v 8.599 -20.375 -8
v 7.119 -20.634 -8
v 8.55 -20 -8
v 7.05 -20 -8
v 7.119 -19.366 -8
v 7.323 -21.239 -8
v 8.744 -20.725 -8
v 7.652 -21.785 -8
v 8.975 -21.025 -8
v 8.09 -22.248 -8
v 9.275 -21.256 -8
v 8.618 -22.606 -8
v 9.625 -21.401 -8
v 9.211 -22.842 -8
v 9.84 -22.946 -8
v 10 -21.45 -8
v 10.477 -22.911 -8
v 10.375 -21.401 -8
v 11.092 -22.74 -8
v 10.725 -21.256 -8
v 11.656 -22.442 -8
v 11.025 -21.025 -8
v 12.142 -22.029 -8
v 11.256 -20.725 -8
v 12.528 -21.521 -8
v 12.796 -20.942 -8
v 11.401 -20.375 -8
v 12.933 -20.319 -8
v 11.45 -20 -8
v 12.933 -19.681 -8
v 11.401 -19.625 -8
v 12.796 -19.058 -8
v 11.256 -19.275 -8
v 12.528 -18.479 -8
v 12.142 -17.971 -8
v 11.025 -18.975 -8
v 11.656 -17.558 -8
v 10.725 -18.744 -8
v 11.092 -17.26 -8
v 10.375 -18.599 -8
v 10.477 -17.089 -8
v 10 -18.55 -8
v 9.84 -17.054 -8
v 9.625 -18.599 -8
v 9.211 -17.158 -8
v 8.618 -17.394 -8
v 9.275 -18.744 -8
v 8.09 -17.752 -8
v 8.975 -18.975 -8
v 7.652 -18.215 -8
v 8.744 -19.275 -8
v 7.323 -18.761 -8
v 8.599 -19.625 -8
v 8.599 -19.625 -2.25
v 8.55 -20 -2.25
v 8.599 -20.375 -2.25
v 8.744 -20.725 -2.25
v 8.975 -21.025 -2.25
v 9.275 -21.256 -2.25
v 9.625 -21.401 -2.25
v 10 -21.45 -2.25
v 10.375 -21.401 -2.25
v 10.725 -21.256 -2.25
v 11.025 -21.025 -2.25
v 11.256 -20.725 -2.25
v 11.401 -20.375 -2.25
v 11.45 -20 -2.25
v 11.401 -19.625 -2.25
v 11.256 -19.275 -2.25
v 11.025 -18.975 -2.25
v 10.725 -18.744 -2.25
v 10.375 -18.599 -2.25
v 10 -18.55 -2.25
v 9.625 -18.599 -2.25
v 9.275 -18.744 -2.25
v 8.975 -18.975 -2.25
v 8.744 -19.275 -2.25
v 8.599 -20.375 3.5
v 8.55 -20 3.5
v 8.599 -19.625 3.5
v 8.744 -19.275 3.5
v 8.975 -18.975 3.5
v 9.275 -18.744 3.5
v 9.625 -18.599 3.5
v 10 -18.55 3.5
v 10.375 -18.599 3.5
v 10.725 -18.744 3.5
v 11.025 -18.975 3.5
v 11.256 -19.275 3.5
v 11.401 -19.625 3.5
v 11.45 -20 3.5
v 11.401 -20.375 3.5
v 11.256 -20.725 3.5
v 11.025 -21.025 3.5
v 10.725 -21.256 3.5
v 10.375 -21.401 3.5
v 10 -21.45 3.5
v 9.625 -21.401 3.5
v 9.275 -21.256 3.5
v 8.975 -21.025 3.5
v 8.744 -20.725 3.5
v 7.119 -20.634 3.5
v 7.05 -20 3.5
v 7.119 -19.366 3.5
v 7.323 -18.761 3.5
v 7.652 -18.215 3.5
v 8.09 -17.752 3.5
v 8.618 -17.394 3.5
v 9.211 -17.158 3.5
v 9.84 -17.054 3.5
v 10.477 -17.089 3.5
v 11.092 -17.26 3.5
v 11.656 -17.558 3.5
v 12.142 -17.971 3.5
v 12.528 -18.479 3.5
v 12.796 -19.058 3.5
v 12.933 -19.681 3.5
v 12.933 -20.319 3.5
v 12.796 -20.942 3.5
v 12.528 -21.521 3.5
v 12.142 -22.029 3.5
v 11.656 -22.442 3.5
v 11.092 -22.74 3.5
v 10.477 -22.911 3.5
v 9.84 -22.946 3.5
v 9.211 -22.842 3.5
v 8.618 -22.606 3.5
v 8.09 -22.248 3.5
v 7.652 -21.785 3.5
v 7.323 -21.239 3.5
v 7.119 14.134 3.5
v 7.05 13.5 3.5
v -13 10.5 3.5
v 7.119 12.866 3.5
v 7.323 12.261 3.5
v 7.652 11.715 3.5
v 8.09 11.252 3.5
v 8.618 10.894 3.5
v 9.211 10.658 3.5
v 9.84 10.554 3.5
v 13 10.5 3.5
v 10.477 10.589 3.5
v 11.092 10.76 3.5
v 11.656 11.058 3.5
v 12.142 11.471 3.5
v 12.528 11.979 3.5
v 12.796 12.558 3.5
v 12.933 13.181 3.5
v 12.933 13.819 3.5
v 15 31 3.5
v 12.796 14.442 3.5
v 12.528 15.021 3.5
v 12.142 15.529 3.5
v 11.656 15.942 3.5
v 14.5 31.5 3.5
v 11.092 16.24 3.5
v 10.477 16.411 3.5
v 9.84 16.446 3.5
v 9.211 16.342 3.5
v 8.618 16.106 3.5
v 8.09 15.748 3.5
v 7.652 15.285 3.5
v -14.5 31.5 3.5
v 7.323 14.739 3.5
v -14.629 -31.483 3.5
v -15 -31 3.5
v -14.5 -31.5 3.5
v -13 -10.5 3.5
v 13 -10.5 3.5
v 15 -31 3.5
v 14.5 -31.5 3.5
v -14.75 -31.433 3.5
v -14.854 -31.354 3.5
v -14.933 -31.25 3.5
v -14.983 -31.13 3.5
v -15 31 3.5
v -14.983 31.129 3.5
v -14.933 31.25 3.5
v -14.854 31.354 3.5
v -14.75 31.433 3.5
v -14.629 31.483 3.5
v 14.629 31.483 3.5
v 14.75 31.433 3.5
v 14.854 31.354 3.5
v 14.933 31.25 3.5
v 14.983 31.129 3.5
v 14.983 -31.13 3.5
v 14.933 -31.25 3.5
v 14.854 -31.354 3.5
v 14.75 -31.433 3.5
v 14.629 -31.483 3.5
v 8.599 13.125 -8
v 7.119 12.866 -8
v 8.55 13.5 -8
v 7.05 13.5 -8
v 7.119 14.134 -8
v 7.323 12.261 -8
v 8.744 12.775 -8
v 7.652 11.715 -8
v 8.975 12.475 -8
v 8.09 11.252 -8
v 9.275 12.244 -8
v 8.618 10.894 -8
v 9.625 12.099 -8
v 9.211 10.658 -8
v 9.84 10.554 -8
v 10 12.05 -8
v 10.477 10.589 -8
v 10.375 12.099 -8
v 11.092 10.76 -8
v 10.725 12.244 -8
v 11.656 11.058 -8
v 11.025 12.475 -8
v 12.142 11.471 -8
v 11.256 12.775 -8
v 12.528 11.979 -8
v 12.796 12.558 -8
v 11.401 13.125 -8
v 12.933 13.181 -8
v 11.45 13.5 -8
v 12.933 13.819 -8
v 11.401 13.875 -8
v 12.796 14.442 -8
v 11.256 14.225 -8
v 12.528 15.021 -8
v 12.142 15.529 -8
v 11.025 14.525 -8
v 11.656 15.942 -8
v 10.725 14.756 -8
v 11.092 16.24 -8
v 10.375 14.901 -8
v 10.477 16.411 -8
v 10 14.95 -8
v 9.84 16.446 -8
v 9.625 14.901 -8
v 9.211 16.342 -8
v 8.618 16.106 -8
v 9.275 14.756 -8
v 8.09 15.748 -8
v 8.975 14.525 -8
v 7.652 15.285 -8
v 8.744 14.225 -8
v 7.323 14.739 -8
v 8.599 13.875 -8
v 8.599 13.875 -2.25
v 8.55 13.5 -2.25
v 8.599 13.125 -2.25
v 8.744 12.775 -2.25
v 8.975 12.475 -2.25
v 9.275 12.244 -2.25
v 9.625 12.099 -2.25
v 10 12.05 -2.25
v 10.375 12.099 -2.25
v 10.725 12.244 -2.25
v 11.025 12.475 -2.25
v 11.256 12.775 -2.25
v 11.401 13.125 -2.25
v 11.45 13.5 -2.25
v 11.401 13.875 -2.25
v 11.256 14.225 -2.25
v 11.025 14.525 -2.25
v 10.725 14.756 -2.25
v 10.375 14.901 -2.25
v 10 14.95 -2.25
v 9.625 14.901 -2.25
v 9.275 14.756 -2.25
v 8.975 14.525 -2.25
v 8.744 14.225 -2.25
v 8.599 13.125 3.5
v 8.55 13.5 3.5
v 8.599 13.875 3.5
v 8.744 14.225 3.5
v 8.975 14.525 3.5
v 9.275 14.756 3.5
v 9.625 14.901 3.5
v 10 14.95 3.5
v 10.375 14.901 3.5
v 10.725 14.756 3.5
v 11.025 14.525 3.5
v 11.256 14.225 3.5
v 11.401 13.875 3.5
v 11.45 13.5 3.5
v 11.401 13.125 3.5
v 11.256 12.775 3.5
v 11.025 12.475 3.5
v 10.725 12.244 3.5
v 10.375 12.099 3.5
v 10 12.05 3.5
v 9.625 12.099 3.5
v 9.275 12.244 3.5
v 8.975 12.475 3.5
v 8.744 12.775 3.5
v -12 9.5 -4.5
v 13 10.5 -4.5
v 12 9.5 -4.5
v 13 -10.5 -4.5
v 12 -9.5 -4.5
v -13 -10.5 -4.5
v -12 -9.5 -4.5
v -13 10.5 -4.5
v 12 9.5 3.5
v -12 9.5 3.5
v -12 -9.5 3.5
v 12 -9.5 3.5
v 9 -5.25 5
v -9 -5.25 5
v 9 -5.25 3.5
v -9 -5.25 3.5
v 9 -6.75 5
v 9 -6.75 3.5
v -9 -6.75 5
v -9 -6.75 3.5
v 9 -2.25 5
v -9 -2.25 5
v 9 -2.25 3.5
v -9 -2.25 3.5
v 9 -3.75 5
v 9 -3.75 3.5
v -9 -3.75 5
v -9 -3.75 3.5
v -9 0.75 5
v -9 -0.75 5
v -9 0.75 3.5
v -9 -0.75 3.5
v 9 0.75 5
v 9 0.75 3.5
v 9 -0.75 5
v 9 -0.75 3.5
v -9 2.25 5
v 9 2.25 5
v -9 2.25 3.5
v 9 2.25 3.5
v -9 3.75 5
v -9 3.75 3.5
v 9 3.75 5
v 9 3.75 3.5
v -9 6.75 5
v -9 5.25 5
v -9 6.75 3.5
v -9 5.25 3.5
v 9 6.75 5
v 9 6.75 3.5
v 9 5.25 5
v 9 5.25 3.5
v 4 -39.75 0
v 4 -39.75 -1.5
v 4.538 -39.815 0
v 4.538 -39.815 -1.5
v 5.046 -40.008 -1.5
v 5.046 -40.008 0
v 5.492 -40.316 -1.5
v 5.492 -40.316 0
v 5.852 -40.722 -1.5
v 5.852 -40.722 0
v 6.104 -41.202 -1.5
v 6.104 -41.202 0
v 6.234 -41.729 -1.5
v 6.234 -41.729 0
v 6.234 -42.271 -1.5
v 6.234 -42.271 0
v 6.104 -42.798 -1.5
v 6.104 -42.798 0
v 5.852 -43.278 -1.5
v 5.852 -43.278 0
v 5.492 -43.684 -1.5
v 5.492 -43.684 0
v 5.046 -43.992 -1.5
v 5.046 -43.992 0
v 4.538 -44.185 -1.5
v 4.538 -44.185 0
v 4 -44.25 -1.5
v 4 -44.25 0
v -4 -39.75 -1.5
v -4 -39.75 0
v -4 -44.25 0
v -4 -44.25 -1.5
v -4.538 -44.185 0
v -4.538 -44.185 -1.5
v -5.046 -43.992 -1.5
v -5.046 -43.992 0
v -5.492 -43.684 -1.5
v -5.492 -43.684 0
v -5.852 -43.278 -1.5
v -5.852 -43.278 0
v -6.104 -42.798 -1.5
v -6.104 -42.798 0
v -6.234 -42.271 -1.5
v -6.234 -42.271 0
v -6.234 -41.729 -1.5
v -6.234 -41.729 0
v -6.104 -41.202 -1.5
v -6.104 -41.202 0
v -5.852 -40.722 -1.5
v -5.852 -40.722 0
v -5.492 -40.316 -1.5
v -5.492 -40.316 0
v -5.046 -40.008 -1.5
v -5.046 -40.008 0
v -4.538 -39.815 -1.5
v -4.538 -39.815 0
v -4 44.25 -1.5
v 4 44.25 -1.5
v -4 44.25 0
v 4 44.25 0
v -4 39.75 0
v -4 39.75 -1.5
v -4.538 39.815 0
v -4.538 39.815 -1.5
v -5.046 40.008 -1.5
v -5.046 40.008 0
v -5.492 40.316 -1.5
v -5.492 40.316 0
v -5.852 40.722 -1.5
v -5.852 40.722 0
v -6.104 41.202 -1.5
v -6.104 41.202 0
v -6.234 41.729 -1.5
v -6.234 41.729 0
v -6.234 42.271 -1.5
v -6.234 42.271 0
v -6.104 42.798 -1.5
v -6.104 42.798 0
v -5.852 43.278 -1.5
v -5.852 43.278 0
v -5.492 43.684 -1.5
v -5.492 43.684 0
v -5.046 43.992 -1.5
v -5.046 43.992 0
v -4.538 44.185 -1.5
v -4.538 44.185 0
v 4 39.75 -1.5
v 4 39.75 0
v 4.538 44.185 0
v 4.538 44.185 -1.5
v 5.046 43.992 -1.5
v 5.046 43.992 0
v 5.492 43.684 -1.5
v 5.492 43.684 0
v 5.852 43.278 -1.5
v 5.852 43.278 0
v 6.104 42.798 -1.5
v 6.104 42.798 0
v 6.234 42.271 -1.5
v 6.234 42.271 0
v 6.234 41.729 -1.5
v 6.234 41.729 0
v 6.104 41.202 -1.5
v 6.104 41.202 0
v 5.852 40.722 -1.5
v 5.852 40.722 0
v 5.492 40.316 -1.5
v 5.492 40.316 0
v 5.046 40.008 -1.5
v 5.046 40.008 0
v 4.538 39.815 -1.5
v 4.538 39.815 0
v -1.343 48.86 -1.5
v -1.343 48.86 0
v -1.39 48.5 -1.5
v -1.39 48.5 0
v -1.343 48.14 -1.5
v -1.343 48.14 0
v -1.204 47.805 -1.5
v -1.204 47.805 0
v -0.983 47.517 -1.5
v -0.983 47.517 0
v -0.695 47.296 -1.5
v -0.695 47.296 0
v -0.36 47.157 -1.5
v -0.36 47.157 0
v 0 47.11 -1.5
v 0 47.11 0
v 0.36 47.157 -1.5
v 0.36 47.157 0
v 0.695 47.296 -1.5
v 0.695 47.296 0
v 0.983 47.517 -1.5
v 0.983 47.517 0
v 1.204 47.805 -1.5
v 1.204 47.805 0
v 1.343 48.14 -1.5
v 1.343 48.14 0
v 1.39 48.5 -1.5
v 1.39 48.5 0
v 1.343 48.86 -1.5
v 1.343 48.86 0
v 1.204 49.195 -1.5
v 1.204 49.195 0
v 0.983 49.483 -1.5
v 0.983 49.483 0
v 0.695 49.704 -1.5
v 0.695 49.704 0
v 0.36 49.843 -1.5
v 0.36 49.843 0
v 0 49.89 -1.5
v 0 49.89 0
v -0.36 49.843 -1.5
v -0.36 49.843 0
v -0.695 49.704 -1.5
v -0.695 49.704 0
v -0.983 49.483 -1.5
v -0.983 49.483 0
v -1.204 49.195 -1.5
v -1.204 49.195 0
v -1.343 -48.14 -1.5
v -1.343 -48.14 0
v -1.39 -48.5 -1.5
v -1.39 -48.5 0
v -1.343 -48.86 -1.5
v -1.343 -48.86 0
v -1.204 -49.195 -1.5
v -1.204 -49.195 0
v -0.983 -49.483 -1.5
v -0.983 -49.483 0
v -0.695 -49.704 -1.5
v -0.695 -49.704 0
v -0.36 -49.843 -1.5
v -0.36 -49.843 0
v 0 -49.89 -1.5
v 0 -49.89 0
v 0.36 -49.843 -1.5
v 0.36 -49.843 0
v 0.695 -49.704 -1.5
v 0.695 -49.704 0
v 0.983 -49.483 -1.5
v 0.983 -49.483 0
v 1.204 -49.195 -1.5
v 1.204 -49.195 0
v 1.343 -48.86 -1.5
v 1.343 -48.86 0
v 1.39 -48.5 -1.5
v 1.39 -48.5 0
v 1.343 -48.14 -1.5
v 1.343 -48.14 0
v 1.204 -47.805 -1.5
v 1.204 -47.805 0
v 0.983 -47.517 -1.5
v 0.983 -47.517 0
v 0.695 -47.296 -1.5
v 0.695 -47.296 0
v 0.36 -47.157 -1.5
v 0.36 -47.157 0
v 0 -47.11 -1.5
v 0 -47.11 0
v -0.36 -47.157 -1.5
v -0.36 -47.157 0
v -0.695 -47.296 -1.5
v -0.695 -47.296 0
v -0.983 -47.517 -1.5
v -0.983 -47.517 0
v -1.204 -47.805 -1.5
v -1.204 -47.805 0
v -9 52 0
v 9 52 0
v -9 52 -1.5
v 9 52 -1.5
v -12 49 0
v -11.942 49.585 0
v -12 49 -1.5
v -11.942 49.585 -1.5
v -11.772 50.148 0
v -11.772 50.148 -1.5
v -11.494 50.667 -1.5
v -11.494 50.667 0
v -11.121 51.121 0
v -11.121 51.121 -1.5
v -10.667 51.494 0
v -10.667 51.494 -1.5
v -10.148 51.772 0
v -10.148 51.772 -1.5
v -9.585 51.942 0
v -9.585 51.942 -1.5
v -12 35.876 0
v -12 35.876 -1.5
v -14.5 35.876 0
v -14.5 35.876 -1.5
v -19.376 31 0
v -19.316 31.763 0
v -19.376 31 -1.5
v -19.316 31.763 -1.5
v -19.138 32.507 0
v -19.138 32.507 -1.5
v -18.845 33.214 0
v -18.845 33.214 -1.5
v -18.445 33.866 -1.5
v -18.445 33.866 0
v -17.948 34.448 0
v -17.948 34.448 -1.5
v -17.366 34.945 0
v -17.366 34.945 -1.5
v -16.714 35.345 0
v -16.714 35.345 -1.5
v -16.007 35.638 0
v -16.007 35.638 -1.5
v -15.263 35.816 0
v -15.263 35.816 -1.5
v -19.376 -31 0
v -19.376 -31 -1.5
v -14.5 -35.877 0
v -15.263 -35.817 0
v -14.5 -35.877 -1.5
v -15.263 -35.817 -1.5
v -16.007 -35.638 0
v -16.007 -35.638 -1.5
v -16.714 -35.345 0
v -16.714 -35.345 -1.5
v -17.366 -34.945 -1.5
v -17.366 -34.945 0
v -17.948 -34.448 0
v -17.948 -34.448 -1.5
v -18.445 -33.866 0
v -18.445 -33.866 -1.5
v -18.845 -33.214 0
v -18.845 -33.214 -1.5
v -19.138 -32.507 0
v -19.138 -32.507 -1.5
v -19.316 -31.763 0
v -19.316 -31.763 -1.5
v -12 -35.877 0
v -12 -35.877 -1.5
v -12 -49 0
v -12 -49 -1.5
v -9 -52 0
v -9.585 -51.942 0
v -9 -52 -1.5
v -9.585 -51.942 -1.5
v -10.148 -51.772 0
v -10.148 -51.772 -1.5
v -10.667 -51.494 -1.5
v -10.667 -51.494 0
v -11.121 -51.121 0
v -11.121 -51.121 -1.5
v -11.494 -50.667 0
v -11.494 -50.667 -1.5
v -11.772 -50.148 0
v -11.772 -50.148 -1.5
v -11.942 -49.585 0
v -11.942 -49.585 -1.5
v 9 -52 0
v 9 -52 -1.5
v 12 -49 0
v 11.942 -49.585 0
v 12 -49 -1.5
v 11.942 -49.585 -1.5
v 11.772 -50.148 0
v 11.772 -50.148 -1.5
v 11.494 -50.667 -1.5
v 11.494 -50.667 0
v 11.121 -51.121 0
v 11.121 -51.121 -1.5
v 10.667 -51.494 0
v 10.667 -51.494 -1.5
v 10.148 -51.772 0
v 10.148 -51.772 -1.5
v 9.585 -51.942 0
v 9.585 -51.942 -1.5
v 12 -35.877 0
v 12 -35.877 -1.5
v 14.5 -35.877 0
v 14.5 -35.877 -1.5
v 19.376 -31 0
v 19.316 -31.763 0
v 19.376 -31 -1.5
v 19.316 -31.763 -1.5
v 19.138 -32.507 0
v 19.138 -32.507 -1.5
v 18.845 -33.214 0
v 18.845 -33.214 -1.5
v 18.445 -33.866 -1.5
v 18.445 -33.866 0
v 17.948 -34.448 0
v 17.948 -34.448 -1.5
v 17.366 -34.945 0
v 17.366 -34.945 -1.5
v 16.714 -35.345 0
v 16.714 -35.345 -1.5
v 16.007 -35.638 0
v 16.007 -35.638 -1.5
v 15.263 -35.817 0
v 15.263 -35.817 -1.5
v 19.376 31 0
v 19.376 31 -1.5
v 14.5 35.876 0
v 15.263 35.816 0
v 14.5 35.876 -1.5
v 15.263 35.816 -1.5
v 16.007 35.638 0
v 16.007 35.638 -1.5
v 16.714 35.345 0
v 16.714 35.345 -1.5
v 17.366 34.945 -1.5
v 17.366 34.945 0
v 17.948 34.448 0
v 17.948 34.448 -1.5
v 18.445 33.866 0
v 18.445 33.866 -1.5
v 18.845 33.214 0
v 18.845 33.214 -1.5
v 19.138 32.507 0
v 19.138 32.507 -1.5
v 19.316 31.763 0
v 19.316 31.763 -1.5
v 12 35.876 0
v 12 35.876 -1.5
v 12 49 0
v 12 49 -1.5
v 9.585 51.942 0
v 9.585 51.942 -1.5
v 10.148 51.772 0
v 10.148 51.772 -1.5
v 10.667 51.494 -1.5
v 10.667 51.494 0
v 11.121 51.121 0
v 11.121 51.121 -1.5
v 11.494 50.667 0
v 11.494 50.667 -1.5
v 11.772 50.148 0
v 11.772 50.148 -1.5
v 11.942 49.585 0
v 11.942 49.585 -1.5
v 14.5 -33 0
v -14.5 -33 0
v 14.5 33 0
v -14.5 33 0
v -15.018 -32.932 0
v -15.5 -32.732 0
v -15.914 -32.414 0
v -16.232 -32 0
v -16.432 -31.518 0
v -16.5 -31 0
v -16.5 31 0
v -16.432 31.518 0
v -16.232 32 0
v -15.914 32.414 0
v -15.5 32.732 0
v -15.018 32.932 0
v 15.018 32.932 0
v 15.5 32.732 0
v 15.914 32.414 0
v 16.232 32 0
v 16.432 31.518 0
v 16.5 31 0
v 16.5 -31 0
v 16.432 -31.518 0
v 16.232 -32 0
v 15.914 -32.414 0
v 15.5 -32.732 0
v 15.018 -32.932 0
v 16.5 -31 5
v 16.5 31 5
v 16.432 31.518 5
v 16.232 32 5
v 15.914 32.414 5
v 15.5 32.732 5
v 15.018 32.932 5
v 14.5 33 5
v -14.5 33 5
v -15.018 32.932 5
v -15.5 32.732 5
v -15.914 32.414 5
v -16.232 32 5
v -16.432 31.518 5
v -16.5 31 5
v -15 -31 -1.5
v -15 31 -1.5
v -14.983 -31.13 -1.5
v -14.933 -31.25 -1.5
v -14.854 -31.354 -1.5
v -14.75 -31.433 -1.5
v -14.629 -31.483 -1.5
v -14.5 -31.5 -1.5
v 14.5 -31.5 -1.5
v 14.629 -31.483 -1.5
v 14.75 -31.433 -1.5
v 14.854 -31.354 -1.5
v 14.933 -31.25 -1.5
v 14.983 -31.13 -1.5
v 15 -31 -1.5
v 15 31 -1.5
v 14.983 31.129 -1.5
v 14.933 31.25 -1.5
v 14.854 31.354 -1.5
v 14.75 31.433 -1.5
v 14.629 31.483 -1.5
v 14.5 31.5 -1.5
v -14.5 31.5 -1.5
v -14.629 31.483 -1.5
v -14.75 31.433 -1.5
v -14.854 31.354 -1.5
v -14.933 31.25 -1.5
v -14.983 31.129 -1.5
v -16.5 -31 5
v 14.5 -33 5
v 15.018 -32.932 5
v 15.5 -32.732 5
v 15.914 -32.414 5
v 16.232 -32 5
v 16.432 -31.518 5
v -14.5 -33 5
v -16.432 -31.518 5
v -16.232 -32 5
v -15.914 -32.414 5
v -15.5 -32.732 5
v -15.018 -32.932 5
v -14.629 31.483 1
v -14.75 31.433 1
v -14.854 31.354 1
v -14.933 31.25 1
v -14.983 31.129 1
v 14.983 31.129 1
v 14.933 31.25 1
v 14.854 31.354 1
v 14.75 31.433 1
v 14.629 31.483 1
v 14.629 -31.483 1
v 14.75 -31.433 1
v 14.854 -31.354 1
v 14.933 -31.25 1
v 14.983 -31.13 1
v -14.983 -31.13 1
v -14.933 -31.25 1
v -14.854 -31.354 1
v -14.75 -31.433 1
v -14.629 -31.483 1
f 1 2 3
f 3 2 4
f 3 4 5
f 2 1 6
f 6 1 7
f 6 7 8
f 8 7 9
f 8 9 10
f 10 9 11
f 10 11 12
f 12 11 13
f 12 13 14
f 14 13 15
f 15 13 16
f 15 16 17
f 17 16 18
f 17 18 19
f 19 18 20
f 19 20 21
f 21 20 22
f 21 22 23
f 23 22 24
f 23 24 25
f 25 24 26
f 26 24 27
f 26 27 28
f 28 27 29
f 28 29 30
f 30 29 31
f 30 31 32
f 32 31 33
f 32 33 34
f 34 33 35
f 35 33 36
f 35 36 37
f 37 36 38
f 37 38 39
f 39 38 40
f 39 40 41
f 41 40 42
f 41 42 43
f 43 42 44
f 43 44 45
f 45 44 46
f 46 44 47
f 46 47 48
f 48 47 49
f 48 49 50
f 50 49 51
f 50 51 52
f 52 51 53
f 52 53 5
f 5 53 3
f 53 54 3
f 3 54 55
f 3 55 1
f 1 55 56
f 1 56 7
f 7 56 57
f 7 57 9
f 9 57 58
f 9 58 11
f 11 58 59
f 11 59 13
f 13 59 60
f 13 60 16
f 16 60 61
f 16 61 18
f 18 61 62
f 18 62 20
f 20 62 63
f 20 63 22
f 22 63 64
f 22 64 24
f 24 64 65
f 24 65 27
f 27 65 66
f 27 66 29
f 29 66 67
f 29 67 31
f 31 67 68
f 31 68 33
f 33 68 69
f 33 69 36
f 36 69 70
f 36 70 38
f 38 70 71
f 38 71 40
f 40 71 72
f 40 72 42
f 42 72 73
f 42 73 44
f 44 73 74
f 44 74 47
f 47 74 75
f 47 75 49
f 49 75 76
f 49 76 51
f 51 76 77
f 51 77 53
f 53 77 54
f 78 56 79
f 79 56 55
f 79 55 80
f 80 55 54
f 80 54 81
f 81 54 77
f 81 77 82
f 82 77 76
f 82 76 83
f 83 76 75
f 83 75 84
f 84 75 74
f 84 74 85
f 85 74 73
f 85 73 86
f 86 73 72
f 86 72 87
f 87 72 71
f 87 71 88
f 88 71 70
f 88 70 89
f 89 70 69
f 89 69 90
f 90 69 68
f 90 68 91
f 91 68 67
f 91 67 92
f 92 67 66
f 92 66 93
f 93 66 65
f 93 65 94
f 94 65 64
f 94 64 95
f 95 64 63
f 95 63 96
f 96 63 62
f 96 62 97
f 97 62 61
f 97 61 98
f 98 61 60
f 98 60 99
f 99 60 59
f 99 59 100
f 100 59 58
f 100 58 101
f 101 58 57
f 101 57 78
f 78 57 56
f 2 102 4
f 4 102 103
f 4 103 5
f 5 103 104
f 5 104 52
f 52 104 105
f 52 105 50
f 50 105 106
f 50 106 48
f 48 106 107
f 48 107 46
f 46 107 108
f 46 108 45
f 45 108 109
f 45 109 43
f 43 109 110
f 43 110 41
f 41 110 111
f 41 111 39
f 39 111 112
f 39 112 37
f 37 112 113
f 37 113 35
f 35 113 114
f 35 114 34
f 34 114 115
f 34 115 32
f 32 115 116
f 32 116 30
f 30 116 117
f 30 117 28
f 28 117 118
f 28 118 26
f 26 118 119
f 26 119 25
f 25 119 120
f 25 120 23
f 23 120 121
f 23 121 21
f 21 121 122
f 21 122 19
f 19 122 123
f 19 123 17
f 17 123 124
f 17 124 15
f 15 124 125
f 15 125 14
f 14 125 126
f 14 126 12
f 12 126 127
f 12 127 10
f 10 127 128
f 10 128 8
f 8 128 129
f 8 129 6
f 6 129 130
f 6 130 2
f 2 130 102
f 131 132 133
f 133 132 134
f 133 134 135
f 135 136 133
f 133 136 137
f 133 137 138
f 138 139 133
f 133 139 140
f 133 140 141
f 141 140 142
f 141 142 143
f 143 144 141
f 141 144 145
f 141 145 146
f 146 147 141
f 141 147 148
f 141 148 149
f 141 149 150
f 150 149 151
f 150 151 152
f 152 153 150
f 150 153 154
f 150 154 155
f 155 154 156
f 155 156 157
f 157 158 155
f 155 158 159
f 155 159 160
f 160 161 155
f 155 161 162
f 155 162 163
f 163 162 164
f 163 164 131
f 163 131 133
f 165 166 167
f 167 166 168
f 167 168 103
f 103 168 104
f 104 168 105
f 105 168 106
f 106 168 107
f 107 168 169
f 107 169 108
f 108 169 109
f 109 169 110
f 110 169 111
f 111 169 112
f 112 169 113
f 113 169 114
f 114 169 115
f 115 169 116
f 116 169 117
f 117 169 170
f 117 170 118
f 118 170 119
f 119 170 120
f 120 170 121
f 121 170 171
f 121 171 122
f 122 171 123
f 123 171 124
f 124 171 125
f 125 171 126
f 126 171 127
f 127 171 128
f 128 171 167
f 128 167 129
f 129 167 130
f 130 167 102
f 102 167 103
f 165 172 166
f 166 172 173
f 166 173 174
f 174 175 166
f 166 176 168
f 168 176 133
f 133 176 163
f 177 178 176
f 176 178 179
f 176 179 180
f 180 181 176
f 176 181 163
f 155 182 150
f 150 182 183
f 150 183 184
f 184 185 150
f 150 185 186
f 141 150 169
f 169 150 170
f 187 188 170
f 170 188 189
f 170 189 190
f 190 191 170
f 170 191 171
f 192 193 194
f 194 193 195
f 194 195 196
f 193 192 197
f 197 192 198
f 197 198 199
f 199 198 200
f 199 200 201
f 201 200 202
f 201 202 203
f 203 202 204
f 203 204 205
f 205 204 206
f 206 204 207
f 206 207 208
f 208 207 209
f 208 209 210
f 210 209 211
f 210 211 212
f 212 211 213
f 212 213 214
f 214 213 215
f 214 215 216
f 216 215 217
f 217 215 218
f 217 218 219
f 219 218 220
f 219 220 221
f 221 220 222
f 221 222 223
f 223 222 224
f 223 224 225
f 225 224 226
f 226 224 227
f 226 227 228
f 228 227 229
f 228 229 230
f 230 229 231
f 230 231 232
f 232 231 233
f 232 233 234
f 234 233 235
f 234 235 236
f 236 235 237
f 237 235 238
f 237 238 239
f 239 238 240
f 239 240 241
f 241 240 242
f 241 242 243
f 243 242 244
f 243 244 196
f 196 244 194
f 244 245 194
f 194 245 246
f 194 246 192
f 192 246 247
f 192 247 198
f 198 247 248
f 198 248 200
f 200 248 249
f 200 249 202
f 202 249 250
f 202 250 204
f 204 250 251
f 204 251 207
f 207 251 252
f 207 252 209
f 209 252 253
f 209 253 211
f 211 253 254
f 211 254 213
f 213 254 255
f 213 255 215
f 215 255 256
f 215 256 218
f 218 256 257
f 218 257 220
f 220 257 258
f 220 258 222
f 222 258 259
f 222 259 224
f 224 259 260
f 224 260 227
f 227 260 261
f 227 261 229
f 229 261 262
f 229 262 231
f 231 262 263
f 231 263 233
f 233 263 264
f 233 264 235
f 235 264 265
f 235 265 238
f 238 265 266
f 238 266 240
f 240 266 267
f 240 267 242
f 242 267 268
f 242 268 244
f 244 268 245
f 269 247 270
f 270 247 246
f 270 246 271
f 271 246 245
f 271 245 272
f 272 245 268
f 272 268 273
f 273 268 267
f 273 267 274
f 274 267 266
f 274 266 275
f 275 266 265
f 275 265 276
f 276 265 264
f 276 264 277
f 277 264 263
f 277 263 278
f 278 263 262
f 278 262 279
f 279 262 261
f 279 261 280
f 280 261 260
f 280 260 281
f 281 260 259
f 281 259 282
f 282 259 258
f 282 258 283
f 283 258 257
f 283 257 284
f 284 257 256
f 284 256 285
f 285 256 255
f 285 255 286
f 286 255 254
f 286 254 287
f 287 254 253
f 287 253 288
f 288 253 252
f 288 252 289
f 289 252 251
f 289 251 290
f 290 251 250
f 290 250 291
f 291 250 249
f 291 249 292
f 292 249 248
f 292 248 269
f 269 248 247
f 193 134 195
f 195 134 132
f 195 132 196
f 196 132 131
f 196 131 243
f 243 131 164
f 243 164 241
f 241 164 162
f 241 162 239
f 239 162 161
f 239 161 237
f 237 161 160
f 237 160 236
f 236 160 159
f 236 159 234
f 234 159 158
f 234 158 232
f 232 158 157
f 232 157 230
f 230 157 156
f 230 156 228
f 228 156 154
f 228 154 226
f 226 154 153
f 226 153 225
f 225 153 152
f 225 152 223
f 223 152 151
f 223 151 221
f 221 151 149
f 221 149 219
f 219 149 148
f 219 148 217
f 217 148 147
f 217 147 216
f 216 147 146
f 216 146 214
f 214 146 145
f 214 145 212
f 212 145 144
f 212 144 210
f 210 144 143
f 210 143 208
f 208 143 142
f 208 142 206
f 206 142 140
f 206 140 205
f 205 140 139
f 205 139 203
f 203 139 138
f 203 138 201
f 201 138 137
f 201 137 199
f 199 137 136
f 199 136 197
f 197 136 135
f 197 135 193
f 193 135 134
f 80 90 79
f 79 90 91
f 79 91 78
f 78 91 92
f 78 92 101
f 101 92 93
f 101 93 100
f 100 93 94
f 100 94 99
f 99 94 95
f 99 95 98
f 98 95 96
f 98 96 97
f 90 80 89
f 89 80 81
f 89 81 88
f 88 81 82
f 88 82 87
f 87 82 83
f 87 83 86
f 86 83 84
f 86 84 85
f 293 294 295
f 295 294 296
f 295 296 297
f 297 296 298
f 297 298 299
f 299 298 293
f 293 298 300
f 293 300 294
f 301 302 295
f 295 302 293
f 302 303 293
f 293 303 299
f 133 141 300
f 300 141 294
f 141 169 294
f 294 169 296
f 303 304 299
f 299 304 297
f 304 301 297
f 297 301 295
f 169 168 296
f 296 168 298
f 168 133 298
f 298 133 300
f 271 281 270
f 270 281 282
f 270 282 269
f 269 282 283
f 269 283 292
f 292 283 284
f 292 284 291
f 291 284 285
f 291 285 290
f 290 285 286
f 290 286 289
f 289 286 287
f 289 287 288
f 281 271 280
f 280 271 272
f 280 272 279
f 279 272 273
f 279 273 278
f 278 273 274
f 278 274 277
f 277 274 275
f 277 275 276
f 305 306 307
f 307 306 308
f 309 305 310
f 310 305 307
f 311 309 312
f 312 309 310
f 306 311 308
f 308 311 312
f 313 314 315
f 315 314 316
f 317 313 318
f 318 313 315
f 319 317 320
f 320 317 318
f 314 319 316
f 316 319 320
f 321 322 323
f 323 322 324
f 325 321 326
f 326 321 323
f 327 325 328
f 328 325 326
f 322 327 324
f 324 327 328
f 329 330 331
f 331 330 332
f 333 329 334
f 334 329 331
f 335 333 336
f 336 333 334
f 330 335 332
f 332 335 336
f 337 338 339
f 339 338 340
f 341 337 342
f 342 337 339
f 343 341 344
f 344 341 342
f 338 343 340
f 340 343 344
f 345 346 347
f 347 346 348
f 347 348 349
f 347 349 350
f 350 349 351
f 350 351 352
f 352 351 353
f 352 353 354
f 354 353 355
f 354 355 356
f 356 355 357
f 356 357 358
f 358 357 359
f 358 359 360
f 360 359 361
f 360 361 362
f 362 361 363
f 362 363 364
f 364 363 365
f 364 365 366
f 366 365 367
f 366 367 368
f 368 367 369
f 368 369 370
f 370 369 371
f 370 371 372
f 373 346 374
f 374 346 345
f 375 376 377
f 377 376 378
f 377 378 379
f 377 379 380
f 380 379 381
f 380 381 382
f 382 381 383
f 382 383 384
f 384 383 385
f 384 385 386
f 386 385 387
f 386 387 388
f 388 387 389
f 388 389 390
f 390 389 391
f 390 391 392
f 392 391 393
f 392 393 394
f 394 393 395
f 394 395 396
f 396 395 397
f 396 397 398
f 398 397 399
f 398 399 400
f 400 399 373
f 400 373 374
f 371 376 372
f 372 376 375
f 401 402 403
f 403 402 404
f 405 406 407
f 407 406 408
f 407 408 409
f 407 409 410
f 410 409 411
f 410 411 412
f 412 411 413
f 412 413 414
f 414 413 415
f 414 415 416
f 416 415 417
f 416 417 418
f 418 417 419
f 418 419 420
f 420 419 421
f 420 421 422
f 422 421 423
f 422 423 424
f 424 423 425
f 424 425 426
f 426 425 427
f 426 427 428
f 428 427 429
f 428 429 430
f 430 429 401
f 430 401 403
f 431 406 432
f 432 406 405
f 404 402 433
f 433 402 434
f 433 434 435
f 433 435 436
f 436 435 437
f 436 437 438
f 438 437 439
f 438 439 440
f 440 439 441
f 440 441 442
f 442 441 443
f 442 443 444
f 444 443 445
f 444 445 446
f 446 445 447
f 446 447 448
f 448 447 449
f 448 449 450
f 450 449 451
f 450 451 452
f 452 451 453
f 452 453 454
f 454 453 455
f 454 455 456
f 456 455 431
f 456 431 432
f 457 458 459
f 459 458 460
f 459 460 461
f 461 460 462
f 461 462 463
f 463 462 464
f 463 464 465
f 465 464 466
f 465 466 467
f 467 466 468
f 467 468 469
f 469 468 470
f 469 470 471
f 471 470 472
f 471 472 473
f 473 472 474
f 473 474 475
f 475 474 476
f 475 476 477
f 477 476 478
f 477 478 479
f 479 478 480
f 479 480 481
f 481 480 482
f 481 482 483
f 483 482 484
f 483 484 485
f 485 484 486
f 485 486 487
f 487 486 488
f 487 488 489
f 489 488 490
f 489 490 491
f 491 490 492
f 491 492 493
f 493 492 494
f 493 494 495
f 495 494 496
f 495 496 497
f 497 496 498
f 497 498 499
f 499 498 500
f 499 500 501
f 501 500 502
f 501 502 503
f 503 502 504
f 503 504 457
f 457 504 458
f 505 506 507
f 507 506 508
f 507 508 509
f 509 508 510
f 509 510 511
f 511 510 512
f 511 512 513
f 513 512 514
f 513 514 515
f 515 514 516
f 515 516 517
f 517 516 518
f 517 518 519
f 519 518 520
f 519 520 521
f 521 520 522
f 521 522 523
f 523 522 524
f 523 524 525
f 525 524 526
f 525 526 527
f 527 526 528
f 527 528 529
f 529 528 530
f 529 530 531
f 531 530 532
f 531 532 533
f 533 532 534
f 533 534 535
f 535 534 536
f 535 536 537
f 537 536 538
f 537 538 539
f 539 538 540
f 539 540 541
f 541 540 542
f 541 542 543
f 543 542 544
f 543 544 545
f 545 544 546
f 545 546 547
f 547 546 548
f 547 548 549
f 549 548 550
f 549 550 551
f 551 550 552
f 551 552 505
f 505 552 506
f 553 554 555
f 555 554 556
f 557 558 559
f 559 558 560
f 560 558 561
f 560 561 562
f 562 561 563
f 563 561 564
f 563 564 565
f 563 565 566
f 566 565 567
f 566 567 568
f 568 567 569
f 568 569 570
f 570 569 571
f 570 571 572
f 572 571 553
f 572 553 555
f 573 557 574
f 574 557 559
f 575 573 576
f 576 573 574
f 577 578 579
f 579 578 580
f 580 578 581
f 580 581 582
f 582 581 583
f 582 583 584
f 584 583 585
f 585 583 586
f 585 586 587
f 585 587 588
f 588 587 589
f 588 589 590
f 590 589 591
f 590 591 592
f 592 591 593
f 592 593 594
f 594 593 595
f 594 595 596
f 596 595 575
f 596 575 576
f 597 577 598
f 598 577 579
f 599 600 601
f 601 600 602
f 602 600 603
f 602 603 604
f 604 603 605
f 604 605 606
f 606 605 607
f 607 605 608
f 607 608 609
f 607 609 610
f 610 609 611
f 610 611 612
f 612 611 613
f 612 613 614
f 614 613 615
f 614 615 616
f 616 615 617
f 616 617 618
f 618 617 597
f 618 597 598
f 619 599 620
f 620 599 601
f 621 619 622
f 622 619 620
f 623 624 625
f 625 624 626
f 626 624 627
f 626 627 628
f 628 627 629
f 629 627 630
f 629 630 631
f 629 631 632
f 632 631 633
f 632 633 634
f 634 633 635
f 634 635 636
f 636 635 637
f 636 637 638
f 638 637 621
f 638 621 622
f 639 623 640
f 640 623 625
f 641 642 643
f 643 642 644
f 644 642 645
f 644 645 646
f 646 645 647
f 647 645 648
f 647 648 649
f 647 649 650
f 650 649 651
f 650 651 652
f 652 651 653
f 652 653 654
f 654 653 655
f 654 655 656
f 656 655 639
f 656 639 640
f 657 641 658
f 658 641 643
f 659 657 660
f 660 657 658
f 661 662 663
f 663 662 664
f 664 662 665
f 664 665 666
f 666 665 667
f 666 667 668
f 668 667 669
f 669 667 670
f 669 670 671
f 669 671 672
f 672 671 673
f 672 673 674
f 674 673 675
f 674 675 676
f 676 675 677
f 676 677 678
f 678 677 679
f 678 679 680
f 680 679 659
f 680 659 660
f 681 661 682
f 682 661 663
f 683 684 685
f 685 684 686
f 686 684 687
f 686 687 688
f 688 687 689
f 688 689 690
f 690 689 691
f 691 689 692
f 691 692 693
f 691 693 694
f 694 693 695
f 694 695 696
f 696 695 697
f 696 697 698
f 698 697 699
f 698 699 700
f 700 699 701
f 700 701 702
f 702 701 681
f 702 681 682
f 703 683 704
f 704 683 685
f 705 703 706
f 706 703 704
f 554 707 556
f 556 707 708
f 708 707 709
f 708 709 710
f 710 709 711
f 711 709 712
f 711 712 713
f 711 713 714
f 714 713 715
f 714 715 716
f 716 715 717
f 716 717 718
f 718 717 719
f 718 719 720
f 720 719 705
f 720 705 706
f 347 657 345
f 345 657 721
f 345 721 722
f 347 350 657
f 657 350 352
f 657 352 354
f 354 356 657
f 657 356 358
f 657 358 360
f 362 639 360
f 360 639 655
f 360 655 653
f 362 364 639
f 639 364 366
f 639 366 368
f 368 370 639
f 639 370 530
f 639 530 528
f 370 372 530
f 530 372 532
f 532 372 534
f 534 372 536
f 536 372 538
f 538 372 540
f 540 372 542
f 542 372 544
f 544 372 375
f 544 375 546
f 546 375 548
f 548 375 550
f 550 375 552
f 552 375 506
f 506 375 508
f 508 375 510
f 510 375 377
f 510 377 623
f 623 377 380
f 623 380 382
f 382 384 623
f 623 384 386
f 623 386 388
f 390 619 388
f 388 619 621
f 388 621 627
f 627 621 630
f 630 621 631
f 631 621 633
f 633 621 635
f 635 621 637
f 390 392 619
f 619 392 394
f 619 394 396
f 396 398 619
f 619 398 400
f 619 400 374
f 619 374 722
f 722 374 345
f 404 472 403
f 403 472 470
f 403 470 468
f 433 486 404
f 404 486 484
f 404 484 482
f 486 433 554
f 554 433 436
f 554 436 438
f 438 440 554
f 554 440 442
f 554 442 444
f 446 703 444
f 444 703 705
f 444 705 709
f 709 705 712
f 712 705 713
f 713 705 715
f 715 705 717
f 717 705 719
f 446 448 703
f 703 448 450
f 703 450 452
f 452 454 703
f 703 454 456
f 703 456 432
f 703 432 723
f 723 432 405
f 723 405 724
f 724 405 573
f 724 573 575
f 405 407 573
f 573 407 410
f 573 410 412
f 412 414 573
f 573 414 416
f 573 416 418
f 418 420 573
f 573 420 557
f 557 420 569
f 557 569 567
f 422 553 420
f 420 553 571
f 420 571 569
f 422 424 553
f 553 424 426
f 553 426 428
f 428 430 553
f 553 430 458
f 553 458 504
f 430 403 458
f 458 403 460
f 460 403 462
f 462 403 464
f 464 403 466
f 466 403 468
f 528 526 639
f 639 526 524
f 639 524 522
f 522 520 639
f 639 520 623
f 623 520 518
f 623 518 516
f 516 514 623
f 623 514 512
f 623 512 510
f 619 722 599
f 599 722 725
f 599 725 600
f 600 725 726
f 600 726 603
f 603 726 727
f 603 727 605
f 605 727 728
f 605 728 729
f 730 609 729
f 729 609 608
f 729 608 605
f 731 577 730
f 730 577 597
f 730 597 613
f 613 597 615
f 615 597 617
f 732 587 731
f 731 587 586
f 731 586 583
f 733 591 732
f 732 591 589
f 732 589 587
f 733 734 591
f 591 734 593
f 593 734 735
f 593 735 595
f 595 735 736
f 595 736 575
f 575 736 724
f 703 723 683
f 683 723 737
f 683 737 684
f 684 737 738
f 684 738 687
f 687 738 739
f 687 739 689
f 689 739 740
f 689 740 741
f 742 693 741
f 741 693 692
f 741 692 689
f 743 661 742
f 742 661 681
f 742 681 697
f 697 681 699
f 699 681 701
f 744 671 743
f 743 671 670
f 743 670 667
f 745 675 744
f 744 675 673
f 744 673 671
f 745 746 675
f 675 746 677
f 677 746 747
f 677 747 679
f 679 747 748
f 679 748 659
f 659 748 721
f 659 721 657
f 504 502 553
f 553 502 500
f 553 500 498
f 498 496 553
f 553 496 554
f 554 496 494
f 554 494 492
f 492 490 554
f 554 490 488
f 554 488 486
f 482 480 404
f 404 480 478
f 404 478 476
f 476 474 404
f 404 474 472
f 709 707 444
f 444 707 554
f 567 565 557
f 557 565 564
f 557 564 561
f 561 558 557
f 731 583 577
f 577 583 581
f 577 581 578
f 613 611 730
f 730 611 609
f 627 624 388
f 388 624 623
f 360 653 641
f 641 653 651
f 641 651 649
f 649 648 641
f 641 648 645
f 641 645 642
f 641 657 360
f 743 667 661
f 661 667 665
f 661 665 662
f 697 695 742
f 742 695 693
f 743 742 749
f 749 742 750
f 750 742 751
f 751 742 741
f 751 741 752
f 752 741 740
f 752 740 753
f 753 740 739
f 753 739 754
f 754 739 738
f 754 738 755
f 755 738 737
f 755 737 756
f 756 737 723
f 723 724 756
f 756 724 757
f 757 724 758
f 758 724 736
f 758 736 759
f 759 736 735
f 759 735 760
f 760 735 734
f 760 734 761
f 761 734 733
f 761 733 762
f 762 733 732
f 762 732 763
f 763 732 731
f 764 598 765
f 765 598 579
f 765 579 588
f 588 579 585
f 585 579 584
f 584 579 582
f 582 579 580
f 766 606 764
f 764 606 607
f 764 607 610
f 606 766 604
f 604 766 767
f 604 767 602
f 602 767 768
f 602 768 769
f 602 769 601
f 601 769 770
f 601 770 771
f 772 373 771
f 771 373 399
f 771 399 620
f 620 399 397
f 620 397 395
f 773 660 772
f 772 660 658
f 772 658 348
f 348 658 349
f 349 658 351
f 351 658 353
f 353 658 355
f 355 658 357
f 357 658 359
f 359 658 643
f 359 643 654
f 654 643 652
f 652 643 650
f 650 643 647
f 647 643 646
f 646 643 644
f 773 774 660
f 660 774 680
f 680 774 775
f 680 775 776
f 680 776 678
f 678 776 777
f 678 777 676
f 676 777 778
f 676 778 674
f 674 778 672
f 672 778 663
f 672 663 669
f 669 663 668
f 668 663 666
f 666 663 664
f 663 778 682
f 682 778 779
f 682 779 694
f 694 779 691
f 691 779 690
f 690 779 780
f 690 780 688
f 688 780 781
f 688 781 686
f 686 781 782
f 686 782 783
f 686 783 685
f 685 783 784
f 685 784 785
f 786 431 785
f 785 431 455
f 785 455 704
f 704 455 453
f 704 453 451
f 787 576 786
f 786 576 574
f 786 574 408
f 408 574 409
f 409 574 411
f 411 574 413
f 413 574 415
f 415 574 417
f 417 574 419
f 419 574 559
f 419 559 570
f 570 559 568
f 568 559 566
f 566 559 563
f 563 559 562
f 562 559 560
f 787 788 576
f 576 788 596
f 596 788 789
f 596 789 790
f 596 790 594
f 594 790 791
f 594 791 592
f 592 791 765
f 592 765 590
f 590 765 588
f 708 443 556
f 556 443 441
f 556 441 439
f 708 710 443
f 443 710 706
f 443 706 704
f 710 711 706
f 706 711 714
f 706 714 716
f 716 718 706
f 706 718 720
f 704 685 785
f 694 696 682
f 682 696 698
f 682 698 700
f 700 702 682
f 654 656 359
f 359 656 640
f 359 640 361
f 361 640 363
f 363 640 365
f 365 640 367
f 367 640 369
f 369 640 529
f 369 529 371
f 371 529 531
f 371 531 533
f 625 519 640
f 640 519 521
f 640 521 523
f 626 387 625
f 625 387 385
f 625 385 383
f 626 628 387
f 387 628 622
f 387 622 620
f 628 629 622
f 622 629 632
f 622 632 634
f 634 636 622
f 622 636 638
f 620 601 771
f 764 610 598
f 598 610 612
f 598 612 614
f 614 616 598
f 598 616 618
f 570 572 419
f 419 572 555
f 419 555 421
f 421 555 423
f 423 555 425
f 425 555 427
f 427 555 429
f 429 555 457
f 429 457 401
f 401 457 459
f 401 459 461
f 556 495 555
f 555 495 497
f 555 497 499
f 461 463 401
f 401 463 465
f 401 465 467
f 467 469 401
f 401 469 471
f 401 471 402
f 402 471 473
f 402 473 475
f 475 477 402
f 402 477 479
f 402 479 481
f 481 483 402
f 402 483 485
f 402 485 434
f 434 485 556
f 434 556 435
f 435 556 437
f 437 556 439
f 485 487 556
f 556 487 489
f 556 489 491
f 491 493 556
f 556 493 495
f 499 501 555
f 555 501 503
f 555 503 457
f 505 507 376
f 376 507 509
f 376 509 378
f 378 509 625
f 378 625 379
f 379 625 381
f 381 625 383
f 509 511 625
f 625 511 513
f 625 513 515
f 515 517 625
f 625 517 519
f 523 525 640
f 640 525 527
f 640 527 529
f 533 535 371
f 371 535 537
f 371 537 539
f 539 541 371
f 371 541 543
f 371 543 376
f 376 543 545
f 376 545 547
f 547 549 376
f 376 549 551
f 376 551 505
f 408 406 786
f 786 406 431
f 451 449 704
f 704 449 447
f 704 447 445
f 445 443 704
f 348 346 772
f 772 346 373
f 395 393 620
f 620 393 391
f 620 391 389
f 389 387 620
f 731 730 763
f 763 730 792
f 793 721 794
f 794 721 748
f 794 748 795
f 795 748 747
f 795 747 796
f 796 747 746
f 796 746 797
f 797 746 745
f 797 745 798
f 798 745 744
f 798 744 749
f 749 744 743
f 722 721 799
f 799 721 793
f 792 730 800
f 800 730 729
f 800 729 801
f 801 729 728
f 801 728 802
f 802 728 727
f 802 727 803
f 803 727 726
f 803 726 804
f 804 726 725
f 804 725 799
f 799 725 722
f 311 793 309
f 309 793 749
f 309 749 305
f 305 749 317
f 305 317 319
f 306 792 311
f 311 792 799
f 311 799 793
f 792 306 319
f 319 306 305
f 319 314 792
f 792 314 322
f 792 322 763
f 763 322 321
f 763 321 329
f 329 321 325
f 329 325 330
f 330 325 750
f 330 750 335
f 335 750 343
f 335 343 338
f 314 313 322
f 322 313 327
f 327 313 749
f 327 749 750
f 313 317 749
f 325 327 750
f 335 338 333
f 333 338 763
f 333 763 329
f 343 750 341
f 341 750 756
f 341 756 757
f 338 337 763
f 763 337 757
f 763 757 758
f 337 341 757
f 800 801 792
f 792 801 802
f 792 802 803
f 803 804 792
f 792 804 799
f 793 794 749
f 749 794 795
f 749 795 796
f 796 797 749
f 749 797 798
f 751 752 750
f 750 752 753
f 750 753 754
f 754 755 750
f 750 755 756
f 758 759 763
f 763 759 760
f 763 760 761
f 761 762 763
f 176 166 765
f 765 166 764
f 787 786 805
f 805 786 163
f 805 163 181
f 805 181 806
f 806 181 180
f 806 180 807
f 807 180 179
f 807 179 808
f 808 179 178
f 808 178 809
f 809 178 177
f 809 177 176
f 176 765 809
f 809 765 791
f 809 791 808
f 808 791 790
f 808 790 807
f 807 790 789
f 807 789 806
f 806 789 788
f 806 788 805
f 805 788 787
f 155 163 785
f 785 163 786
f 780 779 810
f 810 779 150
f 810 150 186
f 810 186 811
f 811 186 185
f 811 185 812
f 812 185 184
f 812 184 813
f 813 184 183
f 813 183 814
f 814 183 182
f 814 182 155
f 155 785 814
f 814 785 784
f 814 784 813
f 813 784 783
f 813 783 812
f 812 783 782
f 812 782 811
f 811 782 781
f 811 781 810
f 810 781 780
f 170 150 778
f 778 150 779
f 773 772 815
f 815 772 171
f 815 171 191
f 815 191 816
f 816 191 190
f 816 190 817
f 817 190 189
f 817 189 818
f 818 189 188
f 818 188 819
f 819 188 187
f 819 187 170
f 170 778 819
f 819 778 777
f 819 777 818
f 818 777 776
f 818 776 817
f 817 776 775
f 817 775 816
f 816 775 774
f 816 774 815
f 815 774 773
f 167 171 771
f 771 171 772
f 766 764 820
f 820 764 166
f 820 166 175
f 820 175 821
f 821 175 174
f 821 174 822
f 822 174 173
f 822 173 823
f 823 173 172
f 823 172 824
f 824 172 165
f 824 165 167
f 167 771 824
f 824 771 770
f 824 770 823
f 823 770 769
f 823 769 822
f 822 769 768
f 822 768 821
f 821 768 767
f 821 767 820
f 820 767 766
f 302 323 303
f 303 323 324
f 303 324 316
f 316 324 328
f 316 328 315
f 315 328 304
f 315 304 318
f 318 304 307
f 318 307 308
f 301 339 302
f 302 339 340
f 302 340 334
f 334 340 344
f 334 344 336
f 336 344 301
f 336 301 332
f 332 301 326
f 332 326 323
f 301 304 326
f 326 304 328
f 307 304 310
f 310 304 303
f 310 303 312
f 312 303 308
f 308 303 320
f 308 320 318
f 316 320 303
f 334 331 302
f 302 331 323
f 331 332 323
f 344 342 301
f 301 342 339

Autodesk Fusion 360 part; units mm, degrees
sketch "Sketch1" plane through (0, 0, 0) normal (0, 0, 1) x (1, 0, 0) in component "Main plate"
  line L0 (12, -33.0003) -> (12, -49)
  line L1 (-14.5, -33.0003) -> (14.5, -33.0003)
  line L2 (14.5, 33) -> (-14.5, 33)
  line L3 (-9, 52) -> (9, 52)
  line L4 (-12, 33) -> (-12, 49)
  line L5 (16.5, -31.0003) -> (16.5, 31)
  line L6 (-12, -49) -> (-12, -33.0003)
  circle A0 centre (0, -48.5) radius 1.39
  circle A1 centre (0, 48.5) radius 1.39
  line L7 (9, -52) -> (-9, -52)
  line L8 (12, 49) -> (12, 33)
  arc A2 (-14.5, 33) -> (-16.5, 31) centre (-14.5, 31) ccw
  line L9 (-16.5, 31) -> (-16.5, -31.0003)
  arc A3 (16.5, 31) -> (14.5, 33) centre (14.5, 31) ccw
  arc A4 (14.5, -33.0003) -> (16.5, -31.0003) centre (14.5, -31.0003) ccw
  arc A5 (-16.5, -31.0003) -> (-14.5, -33.0003) centre (-14.5, -31.0003) ccw
  arc A6 (-12, -49) -> (-9, -52) centre (-9, -49) ccw
  arc A7 (9, -52) -> (12, -49) centre (9, -49) ccw
  arc A8 (-9, 52) -> (-12, 49) centre (-9, 49) ccw
  arc A9 (12, 49) -> (9, 52) centre (9, 49) ccw
  line L10 (-14.5, -35.8766) -> (14.5, -35.8766)
  arc A10 (14.5, -35.8766) -> (19.3763, -31.0003) centre (14.5, -31.0003) ccw
  line L11 (19.3763, -31.0003) -> (19.3763, 31)
  arc A11 (19.3763, 31) -> (14.5, 35.8763) centre (14.5, 31) ccw
  line L12 (14.5, 35.8763) -> (-14.5, 35.8763)
  arc A12 (-14.5, 35.8763) -> (-19.3763, 31) centre (-14.5, 31) ccw
  line L13 (-19.3763, 31) -> (-19.3763, -31.0003)
  arc A13 (-19.3763, -31.0003) -> (-14.5, -35.8766) centre (-14.5, -31.0003) ccw
  line L14 (-4, 39.75) -> (4, 39.75)
  arc A14 (4, 39.75) -> (4, 44.25) centre (4, 42) ccw
  line L15 (4, 44.25) -> (-4, 44.25)
  arc A15 (-4, 44.25) -> (-4, 39.75) centre (-4, 42) ccw
  line L16 (-4, 42) -> (4, 42) construction
  line L17 (-4, -42) -> (4, -42) construction
  arc A16 (4, -44.25) -> (4, -39.75) centre (4, -42) ccw
  line L18 (-4, -44.25) -> (4, -44.25)
  arc A17 (-4, -39.75) -> (-4, -44.25) centre (-4, -42) ccw
  line L19 (4, -39.75) -> (-4, -39.75)
  line L20 (-14.5, -31.5003) -> (14.5, -31.5003)
  arc A18 (14.5, -31.5003) -> (15, -31.0003) centre (14.5, -31.0003) ccw
  line L21 (15, -31.0003) -> (15, 31)
  arc A19 (15, 31) -> (14.5, 31.5) centre (14.5, 31) ccw
  line L22 (14.5, 31.5) -> (-14.5, 31.5)
  arc A20 (-14.5, 31.5) -> (-15, 31) centre (-14.5, 31) ccw
  line L23 (-15, 31) -> (-15, -31.0003)
  arc A21 (-15, -31.0003) -> (-14.5, -31.5003) centre (-14.5, -31.0003) ccw
  line L24 (9, -0.75) -> (-9, -0.75)
  line L25 (-9, -0.75) -> (-9, 0.75)
  line L26 (-9, 0.75) -> (9, 0.75)
  line L27 (9, 0.75) -> (9, -0.75)
  line L28 (9, 3.75) -> (9, 2.25)
  line L29 (9, 2.25) -> (-9, 2.25)
  line L30 (-9, 2.25) -> (-9, 3.75)
  line L31 (-9, 3.75) -> (9, 3.75)
  line L32 (-9, 5.25) -> (-9, 6.75)
  line L33 (-9, 6.75) -> (9, 6.75)
  line L34 (9, 5.25) -> (-9, 5.25)
  line L35 (9, 6.75) -> (9, 5.25)
  line L36 (-9, -2.25) -> (9, -2.25)
  line L37 (9, -2.25) -> (9, -3.75)
  line L38 (-9, -3.75) -> (-9, -2.25)
  line L39 (9, -3.75) -> (-9, -3.75)
  line L40 (9, -5.25) -> (9, -6.75)
  line L41 (-9, -5.25) -> (9, -5.25)
  line L42 (-9, -6.75) -> (-9, -5.25)
  line L43 (9, -6.75) -> (-9, -6.75)
  line L44 (12, -9.5) -> (-12, -9.5)
  line L45 (-12, -9.5) -> (-12, 9.5)
  line L46 (-12, 9.5) -> (12, 9.5)
  line L47 (12, 9.5) -> (12, -9.5)
  line L48 (13, -10.5) -> (-13, -10.5)
  line L49 (-13, -10.5) -> (-13, 10.5)
  line L50 (-13, 10.5) -> (13, 10.5)
  line L51 (13, 10.5) -> (13, -10.5)
  circle A22 centre (10, 13.5) radius 1.45
  circle A23 centre (10, -20) radius 1.45
  circle A24 centre (10, 13.5) radius 2.95
  circle A25 centre (10, -20) radius 2.95
  point P0 (10, 0)
  point P1 (10, 0)
  point P2 (0, 42)
  point P3 (0, -42)
  point P4 (0, 3)
  point P5 (0, 3)
  point P6 (0, 3)
  point P7 (0, 3)
  point P8 (0, 6)
  point P9 (0, 6)
  point P10 (0, 6)
  point P11 (0, 6)
  point P12 (0, -3)
  point P13 (0, -3)
  point P14 (0, -3)
  point P15 (0, -3)
  point P16 (0, -6)
  point P17 (0, -6)
  point P18 (0, -6)
  point P19 (0, -6)
  point P20 (10, 0)
  dimension "d15" = 2
  dimension "d16" = 2
  dimension "d17" = 3
  dimension "d18" = 3
  dimension "d19" = 3
  dimension "d20" = 3
  dimension "d26" = 4.5
  dimension "d27" = 4.5
  dimension "d54" = 2.9
  dimension "d55" = 2.9
  dimension "d56" = 1.5
  dimension "d57" = 1.5
  dimension "d66" = 2.78
  dimension "d67" = 2.78
extrude "Extrude1" add sketch "Sketch1" along normal blind 5 contours L1 L2 L5 A2 L9 A3 A4 A5 | L20 A18 L21 A19 L22 A20 L23 A21 | L24 L25 L26 L27 | L28 L29 L30 L31 | L32 L33 L34 L35 | L36 L37 L38 L39 | L40 L41 L42 L43 | L44 L45 L46 L47 | L48 L49 L50 L51 | A22 | A23 | A24 | A25 makes body 1 in component "Main plate"
extrude "Extrude2" add sketch "Sketch1" against normal blind 1.5 separate body contours L0 L1 L2 L5 L8 A3 A4 L10 A10 L11 A11 L12 | L0 L1 L6 L10 | L0 L6 L7 A6 A7 L10 | L1 L2 L4 L6 A2 L9 A5 L10 L12 A12 L13 A13 | L2 L4 L8 L12 | L3 L4 L8 A8 A9 L12 | L14 A14 L15 A15 | A16 L18 A17 L19 makes body 2 in component "Main plate"
extrude "Extrude3" cut sketch "Sketch1" against normal through all contours L14 A14 L15 A15 bodies 2 in component "Main plate"
extrude "Extrude4" cut sketch "Sketch1" against normal through all contours A16 L18 A17 L19 bodies 2 in component "Main plate"
extrude "Extrude5" add sketch "Sketch1" against normal blind 1.5 contours L1 L2 L5 A2 L9 A3 A4 A5 | L20 A18 L21 A19 L22 A20 L23 A21 | L24 L25 L26 L27 | L28 L29 L30 L31 | L32 L33 L34 L35 | L36 L37 L38 L39 | L40 L41 L42 L43 | L44 L45 L46 L47 | L48 L49 L50 L51 | A22 | A23 | A24 | A25 bodies 1 2 in component "Main plate"
extrude "Extrude6" cut sketch "Sketch1" along normal blind 3.5 contours L20 A18 L21 A19 L22 A20 L23 A21 | L24 L25 L26 L27 | L28 L29 L30 L31 | L32 L33 L34 L35 | L36 L37 L38 L39 | L40 L41 L42 L43 | L44 L45 L46 L47 | L48 L49 L50 L51 | A22 | A23 | A24 | A25 bodies 1 in component "Main plate"
extrude "Extrude7" add sketch "Sketch1" along normal blind 3.5 separate body contours L20 A18 L21 A19 L22 A20 L23 A21 | L24 L25 L26 L27 | L28 L29 L30 L31 | L32 L33 L34 L35 | L36 L37 L38 L39 | L40 L41 L42 L43 | L44 L45 L46 L47 | L48 L49 L50 L51 | A22 | A23 | A24 | A25 makes body 3 in component "Main plate"
extrude "Extrude8" add sketch "Sketch1" against normal blind 1.5 contours L20 A18 L21 A19 L22 A20 L23 A21 | L24 L25 L26 L27 | L28 L29 L30 L31 | L32 L33 L34 L35 | L36 L37 L38 L39 | L40 L41 L42 L43 | L44 L45 L46 L47 | L48 L49 L50 L51 | A22 | A23 | A24 | A25 bodies 3 in component "Main plate"
combine "Combine1" operation cut target body 1 tool bodies 3 in component "Main plate"
extrude "Extrude9" add sketch "Sketch1" along normal blind 13 separate body contours L24 L25 L26 L27 | L28 L29 L30 L31 | L32 L33 L34 L35 | L36 L37 L38 L39 | L40 L41 L42 L43 makes body 4 at (3, -0.75, 4.3333) makes body 5 at (-3, -2.25, 4.3333) makes body 6 at (3, 2.25, 4.3333) makes body 7 at (3, -6.75, 4.3333) makes body 8 at (-3, 6.75, 4.3333) in component "Main plate"
combine "Combine2" operation cut target body 1 tool bodies 8 6 4 5 7 in component "Main plate"
extrude "Extrude10" add sketch "Sketch1" along normal blind 4 contours L48 L49 L50 L51 bodies 1 in component "Main plate"
extrude "Extrude11" add 1 faces at (-4, -10.1667, 0) along direction (0, 0, -1) blind 4.5 on bodies 1 bodies 1 in component "Main plate"
extrude "Extrude12" add sketch "Sketch1" along normal blind 3.5 separate body contours A24 makes body 9 in component "Main plate"
extrude "Extrude13" add sketch "Sketch1" against normal blind 6.5 contours A24 bodies 9 in component "Main plate"
extrude "Extrude14" add sketch "Sketch1" along normal blind 3.5 separate body contours A25 makes body 10 in component "Main plate"
extrude "Extrude15" add sketch "Sketch1" against normal blind 6.5 contours A25 bodies 10 in component "Main plate"
combine "Combine3" operation add target body 1 tool bodies 9 10 in component "Main plate"
move_face "OffsetFaces1" offset 1.5 1 faces at (12.439, 13.3534, -6.5) on bodies 1 in component "Main plate"
move_face "OffsetFaces2" offset 1.5 1 faces at (12.4336, -20.2186, -6.5) on bodies 1 in component "Main plate"
component "Main plate" placed x (1, 0, 0) y (0, 1, 0) z (0, 0, 1) at (0, 0, 0)
